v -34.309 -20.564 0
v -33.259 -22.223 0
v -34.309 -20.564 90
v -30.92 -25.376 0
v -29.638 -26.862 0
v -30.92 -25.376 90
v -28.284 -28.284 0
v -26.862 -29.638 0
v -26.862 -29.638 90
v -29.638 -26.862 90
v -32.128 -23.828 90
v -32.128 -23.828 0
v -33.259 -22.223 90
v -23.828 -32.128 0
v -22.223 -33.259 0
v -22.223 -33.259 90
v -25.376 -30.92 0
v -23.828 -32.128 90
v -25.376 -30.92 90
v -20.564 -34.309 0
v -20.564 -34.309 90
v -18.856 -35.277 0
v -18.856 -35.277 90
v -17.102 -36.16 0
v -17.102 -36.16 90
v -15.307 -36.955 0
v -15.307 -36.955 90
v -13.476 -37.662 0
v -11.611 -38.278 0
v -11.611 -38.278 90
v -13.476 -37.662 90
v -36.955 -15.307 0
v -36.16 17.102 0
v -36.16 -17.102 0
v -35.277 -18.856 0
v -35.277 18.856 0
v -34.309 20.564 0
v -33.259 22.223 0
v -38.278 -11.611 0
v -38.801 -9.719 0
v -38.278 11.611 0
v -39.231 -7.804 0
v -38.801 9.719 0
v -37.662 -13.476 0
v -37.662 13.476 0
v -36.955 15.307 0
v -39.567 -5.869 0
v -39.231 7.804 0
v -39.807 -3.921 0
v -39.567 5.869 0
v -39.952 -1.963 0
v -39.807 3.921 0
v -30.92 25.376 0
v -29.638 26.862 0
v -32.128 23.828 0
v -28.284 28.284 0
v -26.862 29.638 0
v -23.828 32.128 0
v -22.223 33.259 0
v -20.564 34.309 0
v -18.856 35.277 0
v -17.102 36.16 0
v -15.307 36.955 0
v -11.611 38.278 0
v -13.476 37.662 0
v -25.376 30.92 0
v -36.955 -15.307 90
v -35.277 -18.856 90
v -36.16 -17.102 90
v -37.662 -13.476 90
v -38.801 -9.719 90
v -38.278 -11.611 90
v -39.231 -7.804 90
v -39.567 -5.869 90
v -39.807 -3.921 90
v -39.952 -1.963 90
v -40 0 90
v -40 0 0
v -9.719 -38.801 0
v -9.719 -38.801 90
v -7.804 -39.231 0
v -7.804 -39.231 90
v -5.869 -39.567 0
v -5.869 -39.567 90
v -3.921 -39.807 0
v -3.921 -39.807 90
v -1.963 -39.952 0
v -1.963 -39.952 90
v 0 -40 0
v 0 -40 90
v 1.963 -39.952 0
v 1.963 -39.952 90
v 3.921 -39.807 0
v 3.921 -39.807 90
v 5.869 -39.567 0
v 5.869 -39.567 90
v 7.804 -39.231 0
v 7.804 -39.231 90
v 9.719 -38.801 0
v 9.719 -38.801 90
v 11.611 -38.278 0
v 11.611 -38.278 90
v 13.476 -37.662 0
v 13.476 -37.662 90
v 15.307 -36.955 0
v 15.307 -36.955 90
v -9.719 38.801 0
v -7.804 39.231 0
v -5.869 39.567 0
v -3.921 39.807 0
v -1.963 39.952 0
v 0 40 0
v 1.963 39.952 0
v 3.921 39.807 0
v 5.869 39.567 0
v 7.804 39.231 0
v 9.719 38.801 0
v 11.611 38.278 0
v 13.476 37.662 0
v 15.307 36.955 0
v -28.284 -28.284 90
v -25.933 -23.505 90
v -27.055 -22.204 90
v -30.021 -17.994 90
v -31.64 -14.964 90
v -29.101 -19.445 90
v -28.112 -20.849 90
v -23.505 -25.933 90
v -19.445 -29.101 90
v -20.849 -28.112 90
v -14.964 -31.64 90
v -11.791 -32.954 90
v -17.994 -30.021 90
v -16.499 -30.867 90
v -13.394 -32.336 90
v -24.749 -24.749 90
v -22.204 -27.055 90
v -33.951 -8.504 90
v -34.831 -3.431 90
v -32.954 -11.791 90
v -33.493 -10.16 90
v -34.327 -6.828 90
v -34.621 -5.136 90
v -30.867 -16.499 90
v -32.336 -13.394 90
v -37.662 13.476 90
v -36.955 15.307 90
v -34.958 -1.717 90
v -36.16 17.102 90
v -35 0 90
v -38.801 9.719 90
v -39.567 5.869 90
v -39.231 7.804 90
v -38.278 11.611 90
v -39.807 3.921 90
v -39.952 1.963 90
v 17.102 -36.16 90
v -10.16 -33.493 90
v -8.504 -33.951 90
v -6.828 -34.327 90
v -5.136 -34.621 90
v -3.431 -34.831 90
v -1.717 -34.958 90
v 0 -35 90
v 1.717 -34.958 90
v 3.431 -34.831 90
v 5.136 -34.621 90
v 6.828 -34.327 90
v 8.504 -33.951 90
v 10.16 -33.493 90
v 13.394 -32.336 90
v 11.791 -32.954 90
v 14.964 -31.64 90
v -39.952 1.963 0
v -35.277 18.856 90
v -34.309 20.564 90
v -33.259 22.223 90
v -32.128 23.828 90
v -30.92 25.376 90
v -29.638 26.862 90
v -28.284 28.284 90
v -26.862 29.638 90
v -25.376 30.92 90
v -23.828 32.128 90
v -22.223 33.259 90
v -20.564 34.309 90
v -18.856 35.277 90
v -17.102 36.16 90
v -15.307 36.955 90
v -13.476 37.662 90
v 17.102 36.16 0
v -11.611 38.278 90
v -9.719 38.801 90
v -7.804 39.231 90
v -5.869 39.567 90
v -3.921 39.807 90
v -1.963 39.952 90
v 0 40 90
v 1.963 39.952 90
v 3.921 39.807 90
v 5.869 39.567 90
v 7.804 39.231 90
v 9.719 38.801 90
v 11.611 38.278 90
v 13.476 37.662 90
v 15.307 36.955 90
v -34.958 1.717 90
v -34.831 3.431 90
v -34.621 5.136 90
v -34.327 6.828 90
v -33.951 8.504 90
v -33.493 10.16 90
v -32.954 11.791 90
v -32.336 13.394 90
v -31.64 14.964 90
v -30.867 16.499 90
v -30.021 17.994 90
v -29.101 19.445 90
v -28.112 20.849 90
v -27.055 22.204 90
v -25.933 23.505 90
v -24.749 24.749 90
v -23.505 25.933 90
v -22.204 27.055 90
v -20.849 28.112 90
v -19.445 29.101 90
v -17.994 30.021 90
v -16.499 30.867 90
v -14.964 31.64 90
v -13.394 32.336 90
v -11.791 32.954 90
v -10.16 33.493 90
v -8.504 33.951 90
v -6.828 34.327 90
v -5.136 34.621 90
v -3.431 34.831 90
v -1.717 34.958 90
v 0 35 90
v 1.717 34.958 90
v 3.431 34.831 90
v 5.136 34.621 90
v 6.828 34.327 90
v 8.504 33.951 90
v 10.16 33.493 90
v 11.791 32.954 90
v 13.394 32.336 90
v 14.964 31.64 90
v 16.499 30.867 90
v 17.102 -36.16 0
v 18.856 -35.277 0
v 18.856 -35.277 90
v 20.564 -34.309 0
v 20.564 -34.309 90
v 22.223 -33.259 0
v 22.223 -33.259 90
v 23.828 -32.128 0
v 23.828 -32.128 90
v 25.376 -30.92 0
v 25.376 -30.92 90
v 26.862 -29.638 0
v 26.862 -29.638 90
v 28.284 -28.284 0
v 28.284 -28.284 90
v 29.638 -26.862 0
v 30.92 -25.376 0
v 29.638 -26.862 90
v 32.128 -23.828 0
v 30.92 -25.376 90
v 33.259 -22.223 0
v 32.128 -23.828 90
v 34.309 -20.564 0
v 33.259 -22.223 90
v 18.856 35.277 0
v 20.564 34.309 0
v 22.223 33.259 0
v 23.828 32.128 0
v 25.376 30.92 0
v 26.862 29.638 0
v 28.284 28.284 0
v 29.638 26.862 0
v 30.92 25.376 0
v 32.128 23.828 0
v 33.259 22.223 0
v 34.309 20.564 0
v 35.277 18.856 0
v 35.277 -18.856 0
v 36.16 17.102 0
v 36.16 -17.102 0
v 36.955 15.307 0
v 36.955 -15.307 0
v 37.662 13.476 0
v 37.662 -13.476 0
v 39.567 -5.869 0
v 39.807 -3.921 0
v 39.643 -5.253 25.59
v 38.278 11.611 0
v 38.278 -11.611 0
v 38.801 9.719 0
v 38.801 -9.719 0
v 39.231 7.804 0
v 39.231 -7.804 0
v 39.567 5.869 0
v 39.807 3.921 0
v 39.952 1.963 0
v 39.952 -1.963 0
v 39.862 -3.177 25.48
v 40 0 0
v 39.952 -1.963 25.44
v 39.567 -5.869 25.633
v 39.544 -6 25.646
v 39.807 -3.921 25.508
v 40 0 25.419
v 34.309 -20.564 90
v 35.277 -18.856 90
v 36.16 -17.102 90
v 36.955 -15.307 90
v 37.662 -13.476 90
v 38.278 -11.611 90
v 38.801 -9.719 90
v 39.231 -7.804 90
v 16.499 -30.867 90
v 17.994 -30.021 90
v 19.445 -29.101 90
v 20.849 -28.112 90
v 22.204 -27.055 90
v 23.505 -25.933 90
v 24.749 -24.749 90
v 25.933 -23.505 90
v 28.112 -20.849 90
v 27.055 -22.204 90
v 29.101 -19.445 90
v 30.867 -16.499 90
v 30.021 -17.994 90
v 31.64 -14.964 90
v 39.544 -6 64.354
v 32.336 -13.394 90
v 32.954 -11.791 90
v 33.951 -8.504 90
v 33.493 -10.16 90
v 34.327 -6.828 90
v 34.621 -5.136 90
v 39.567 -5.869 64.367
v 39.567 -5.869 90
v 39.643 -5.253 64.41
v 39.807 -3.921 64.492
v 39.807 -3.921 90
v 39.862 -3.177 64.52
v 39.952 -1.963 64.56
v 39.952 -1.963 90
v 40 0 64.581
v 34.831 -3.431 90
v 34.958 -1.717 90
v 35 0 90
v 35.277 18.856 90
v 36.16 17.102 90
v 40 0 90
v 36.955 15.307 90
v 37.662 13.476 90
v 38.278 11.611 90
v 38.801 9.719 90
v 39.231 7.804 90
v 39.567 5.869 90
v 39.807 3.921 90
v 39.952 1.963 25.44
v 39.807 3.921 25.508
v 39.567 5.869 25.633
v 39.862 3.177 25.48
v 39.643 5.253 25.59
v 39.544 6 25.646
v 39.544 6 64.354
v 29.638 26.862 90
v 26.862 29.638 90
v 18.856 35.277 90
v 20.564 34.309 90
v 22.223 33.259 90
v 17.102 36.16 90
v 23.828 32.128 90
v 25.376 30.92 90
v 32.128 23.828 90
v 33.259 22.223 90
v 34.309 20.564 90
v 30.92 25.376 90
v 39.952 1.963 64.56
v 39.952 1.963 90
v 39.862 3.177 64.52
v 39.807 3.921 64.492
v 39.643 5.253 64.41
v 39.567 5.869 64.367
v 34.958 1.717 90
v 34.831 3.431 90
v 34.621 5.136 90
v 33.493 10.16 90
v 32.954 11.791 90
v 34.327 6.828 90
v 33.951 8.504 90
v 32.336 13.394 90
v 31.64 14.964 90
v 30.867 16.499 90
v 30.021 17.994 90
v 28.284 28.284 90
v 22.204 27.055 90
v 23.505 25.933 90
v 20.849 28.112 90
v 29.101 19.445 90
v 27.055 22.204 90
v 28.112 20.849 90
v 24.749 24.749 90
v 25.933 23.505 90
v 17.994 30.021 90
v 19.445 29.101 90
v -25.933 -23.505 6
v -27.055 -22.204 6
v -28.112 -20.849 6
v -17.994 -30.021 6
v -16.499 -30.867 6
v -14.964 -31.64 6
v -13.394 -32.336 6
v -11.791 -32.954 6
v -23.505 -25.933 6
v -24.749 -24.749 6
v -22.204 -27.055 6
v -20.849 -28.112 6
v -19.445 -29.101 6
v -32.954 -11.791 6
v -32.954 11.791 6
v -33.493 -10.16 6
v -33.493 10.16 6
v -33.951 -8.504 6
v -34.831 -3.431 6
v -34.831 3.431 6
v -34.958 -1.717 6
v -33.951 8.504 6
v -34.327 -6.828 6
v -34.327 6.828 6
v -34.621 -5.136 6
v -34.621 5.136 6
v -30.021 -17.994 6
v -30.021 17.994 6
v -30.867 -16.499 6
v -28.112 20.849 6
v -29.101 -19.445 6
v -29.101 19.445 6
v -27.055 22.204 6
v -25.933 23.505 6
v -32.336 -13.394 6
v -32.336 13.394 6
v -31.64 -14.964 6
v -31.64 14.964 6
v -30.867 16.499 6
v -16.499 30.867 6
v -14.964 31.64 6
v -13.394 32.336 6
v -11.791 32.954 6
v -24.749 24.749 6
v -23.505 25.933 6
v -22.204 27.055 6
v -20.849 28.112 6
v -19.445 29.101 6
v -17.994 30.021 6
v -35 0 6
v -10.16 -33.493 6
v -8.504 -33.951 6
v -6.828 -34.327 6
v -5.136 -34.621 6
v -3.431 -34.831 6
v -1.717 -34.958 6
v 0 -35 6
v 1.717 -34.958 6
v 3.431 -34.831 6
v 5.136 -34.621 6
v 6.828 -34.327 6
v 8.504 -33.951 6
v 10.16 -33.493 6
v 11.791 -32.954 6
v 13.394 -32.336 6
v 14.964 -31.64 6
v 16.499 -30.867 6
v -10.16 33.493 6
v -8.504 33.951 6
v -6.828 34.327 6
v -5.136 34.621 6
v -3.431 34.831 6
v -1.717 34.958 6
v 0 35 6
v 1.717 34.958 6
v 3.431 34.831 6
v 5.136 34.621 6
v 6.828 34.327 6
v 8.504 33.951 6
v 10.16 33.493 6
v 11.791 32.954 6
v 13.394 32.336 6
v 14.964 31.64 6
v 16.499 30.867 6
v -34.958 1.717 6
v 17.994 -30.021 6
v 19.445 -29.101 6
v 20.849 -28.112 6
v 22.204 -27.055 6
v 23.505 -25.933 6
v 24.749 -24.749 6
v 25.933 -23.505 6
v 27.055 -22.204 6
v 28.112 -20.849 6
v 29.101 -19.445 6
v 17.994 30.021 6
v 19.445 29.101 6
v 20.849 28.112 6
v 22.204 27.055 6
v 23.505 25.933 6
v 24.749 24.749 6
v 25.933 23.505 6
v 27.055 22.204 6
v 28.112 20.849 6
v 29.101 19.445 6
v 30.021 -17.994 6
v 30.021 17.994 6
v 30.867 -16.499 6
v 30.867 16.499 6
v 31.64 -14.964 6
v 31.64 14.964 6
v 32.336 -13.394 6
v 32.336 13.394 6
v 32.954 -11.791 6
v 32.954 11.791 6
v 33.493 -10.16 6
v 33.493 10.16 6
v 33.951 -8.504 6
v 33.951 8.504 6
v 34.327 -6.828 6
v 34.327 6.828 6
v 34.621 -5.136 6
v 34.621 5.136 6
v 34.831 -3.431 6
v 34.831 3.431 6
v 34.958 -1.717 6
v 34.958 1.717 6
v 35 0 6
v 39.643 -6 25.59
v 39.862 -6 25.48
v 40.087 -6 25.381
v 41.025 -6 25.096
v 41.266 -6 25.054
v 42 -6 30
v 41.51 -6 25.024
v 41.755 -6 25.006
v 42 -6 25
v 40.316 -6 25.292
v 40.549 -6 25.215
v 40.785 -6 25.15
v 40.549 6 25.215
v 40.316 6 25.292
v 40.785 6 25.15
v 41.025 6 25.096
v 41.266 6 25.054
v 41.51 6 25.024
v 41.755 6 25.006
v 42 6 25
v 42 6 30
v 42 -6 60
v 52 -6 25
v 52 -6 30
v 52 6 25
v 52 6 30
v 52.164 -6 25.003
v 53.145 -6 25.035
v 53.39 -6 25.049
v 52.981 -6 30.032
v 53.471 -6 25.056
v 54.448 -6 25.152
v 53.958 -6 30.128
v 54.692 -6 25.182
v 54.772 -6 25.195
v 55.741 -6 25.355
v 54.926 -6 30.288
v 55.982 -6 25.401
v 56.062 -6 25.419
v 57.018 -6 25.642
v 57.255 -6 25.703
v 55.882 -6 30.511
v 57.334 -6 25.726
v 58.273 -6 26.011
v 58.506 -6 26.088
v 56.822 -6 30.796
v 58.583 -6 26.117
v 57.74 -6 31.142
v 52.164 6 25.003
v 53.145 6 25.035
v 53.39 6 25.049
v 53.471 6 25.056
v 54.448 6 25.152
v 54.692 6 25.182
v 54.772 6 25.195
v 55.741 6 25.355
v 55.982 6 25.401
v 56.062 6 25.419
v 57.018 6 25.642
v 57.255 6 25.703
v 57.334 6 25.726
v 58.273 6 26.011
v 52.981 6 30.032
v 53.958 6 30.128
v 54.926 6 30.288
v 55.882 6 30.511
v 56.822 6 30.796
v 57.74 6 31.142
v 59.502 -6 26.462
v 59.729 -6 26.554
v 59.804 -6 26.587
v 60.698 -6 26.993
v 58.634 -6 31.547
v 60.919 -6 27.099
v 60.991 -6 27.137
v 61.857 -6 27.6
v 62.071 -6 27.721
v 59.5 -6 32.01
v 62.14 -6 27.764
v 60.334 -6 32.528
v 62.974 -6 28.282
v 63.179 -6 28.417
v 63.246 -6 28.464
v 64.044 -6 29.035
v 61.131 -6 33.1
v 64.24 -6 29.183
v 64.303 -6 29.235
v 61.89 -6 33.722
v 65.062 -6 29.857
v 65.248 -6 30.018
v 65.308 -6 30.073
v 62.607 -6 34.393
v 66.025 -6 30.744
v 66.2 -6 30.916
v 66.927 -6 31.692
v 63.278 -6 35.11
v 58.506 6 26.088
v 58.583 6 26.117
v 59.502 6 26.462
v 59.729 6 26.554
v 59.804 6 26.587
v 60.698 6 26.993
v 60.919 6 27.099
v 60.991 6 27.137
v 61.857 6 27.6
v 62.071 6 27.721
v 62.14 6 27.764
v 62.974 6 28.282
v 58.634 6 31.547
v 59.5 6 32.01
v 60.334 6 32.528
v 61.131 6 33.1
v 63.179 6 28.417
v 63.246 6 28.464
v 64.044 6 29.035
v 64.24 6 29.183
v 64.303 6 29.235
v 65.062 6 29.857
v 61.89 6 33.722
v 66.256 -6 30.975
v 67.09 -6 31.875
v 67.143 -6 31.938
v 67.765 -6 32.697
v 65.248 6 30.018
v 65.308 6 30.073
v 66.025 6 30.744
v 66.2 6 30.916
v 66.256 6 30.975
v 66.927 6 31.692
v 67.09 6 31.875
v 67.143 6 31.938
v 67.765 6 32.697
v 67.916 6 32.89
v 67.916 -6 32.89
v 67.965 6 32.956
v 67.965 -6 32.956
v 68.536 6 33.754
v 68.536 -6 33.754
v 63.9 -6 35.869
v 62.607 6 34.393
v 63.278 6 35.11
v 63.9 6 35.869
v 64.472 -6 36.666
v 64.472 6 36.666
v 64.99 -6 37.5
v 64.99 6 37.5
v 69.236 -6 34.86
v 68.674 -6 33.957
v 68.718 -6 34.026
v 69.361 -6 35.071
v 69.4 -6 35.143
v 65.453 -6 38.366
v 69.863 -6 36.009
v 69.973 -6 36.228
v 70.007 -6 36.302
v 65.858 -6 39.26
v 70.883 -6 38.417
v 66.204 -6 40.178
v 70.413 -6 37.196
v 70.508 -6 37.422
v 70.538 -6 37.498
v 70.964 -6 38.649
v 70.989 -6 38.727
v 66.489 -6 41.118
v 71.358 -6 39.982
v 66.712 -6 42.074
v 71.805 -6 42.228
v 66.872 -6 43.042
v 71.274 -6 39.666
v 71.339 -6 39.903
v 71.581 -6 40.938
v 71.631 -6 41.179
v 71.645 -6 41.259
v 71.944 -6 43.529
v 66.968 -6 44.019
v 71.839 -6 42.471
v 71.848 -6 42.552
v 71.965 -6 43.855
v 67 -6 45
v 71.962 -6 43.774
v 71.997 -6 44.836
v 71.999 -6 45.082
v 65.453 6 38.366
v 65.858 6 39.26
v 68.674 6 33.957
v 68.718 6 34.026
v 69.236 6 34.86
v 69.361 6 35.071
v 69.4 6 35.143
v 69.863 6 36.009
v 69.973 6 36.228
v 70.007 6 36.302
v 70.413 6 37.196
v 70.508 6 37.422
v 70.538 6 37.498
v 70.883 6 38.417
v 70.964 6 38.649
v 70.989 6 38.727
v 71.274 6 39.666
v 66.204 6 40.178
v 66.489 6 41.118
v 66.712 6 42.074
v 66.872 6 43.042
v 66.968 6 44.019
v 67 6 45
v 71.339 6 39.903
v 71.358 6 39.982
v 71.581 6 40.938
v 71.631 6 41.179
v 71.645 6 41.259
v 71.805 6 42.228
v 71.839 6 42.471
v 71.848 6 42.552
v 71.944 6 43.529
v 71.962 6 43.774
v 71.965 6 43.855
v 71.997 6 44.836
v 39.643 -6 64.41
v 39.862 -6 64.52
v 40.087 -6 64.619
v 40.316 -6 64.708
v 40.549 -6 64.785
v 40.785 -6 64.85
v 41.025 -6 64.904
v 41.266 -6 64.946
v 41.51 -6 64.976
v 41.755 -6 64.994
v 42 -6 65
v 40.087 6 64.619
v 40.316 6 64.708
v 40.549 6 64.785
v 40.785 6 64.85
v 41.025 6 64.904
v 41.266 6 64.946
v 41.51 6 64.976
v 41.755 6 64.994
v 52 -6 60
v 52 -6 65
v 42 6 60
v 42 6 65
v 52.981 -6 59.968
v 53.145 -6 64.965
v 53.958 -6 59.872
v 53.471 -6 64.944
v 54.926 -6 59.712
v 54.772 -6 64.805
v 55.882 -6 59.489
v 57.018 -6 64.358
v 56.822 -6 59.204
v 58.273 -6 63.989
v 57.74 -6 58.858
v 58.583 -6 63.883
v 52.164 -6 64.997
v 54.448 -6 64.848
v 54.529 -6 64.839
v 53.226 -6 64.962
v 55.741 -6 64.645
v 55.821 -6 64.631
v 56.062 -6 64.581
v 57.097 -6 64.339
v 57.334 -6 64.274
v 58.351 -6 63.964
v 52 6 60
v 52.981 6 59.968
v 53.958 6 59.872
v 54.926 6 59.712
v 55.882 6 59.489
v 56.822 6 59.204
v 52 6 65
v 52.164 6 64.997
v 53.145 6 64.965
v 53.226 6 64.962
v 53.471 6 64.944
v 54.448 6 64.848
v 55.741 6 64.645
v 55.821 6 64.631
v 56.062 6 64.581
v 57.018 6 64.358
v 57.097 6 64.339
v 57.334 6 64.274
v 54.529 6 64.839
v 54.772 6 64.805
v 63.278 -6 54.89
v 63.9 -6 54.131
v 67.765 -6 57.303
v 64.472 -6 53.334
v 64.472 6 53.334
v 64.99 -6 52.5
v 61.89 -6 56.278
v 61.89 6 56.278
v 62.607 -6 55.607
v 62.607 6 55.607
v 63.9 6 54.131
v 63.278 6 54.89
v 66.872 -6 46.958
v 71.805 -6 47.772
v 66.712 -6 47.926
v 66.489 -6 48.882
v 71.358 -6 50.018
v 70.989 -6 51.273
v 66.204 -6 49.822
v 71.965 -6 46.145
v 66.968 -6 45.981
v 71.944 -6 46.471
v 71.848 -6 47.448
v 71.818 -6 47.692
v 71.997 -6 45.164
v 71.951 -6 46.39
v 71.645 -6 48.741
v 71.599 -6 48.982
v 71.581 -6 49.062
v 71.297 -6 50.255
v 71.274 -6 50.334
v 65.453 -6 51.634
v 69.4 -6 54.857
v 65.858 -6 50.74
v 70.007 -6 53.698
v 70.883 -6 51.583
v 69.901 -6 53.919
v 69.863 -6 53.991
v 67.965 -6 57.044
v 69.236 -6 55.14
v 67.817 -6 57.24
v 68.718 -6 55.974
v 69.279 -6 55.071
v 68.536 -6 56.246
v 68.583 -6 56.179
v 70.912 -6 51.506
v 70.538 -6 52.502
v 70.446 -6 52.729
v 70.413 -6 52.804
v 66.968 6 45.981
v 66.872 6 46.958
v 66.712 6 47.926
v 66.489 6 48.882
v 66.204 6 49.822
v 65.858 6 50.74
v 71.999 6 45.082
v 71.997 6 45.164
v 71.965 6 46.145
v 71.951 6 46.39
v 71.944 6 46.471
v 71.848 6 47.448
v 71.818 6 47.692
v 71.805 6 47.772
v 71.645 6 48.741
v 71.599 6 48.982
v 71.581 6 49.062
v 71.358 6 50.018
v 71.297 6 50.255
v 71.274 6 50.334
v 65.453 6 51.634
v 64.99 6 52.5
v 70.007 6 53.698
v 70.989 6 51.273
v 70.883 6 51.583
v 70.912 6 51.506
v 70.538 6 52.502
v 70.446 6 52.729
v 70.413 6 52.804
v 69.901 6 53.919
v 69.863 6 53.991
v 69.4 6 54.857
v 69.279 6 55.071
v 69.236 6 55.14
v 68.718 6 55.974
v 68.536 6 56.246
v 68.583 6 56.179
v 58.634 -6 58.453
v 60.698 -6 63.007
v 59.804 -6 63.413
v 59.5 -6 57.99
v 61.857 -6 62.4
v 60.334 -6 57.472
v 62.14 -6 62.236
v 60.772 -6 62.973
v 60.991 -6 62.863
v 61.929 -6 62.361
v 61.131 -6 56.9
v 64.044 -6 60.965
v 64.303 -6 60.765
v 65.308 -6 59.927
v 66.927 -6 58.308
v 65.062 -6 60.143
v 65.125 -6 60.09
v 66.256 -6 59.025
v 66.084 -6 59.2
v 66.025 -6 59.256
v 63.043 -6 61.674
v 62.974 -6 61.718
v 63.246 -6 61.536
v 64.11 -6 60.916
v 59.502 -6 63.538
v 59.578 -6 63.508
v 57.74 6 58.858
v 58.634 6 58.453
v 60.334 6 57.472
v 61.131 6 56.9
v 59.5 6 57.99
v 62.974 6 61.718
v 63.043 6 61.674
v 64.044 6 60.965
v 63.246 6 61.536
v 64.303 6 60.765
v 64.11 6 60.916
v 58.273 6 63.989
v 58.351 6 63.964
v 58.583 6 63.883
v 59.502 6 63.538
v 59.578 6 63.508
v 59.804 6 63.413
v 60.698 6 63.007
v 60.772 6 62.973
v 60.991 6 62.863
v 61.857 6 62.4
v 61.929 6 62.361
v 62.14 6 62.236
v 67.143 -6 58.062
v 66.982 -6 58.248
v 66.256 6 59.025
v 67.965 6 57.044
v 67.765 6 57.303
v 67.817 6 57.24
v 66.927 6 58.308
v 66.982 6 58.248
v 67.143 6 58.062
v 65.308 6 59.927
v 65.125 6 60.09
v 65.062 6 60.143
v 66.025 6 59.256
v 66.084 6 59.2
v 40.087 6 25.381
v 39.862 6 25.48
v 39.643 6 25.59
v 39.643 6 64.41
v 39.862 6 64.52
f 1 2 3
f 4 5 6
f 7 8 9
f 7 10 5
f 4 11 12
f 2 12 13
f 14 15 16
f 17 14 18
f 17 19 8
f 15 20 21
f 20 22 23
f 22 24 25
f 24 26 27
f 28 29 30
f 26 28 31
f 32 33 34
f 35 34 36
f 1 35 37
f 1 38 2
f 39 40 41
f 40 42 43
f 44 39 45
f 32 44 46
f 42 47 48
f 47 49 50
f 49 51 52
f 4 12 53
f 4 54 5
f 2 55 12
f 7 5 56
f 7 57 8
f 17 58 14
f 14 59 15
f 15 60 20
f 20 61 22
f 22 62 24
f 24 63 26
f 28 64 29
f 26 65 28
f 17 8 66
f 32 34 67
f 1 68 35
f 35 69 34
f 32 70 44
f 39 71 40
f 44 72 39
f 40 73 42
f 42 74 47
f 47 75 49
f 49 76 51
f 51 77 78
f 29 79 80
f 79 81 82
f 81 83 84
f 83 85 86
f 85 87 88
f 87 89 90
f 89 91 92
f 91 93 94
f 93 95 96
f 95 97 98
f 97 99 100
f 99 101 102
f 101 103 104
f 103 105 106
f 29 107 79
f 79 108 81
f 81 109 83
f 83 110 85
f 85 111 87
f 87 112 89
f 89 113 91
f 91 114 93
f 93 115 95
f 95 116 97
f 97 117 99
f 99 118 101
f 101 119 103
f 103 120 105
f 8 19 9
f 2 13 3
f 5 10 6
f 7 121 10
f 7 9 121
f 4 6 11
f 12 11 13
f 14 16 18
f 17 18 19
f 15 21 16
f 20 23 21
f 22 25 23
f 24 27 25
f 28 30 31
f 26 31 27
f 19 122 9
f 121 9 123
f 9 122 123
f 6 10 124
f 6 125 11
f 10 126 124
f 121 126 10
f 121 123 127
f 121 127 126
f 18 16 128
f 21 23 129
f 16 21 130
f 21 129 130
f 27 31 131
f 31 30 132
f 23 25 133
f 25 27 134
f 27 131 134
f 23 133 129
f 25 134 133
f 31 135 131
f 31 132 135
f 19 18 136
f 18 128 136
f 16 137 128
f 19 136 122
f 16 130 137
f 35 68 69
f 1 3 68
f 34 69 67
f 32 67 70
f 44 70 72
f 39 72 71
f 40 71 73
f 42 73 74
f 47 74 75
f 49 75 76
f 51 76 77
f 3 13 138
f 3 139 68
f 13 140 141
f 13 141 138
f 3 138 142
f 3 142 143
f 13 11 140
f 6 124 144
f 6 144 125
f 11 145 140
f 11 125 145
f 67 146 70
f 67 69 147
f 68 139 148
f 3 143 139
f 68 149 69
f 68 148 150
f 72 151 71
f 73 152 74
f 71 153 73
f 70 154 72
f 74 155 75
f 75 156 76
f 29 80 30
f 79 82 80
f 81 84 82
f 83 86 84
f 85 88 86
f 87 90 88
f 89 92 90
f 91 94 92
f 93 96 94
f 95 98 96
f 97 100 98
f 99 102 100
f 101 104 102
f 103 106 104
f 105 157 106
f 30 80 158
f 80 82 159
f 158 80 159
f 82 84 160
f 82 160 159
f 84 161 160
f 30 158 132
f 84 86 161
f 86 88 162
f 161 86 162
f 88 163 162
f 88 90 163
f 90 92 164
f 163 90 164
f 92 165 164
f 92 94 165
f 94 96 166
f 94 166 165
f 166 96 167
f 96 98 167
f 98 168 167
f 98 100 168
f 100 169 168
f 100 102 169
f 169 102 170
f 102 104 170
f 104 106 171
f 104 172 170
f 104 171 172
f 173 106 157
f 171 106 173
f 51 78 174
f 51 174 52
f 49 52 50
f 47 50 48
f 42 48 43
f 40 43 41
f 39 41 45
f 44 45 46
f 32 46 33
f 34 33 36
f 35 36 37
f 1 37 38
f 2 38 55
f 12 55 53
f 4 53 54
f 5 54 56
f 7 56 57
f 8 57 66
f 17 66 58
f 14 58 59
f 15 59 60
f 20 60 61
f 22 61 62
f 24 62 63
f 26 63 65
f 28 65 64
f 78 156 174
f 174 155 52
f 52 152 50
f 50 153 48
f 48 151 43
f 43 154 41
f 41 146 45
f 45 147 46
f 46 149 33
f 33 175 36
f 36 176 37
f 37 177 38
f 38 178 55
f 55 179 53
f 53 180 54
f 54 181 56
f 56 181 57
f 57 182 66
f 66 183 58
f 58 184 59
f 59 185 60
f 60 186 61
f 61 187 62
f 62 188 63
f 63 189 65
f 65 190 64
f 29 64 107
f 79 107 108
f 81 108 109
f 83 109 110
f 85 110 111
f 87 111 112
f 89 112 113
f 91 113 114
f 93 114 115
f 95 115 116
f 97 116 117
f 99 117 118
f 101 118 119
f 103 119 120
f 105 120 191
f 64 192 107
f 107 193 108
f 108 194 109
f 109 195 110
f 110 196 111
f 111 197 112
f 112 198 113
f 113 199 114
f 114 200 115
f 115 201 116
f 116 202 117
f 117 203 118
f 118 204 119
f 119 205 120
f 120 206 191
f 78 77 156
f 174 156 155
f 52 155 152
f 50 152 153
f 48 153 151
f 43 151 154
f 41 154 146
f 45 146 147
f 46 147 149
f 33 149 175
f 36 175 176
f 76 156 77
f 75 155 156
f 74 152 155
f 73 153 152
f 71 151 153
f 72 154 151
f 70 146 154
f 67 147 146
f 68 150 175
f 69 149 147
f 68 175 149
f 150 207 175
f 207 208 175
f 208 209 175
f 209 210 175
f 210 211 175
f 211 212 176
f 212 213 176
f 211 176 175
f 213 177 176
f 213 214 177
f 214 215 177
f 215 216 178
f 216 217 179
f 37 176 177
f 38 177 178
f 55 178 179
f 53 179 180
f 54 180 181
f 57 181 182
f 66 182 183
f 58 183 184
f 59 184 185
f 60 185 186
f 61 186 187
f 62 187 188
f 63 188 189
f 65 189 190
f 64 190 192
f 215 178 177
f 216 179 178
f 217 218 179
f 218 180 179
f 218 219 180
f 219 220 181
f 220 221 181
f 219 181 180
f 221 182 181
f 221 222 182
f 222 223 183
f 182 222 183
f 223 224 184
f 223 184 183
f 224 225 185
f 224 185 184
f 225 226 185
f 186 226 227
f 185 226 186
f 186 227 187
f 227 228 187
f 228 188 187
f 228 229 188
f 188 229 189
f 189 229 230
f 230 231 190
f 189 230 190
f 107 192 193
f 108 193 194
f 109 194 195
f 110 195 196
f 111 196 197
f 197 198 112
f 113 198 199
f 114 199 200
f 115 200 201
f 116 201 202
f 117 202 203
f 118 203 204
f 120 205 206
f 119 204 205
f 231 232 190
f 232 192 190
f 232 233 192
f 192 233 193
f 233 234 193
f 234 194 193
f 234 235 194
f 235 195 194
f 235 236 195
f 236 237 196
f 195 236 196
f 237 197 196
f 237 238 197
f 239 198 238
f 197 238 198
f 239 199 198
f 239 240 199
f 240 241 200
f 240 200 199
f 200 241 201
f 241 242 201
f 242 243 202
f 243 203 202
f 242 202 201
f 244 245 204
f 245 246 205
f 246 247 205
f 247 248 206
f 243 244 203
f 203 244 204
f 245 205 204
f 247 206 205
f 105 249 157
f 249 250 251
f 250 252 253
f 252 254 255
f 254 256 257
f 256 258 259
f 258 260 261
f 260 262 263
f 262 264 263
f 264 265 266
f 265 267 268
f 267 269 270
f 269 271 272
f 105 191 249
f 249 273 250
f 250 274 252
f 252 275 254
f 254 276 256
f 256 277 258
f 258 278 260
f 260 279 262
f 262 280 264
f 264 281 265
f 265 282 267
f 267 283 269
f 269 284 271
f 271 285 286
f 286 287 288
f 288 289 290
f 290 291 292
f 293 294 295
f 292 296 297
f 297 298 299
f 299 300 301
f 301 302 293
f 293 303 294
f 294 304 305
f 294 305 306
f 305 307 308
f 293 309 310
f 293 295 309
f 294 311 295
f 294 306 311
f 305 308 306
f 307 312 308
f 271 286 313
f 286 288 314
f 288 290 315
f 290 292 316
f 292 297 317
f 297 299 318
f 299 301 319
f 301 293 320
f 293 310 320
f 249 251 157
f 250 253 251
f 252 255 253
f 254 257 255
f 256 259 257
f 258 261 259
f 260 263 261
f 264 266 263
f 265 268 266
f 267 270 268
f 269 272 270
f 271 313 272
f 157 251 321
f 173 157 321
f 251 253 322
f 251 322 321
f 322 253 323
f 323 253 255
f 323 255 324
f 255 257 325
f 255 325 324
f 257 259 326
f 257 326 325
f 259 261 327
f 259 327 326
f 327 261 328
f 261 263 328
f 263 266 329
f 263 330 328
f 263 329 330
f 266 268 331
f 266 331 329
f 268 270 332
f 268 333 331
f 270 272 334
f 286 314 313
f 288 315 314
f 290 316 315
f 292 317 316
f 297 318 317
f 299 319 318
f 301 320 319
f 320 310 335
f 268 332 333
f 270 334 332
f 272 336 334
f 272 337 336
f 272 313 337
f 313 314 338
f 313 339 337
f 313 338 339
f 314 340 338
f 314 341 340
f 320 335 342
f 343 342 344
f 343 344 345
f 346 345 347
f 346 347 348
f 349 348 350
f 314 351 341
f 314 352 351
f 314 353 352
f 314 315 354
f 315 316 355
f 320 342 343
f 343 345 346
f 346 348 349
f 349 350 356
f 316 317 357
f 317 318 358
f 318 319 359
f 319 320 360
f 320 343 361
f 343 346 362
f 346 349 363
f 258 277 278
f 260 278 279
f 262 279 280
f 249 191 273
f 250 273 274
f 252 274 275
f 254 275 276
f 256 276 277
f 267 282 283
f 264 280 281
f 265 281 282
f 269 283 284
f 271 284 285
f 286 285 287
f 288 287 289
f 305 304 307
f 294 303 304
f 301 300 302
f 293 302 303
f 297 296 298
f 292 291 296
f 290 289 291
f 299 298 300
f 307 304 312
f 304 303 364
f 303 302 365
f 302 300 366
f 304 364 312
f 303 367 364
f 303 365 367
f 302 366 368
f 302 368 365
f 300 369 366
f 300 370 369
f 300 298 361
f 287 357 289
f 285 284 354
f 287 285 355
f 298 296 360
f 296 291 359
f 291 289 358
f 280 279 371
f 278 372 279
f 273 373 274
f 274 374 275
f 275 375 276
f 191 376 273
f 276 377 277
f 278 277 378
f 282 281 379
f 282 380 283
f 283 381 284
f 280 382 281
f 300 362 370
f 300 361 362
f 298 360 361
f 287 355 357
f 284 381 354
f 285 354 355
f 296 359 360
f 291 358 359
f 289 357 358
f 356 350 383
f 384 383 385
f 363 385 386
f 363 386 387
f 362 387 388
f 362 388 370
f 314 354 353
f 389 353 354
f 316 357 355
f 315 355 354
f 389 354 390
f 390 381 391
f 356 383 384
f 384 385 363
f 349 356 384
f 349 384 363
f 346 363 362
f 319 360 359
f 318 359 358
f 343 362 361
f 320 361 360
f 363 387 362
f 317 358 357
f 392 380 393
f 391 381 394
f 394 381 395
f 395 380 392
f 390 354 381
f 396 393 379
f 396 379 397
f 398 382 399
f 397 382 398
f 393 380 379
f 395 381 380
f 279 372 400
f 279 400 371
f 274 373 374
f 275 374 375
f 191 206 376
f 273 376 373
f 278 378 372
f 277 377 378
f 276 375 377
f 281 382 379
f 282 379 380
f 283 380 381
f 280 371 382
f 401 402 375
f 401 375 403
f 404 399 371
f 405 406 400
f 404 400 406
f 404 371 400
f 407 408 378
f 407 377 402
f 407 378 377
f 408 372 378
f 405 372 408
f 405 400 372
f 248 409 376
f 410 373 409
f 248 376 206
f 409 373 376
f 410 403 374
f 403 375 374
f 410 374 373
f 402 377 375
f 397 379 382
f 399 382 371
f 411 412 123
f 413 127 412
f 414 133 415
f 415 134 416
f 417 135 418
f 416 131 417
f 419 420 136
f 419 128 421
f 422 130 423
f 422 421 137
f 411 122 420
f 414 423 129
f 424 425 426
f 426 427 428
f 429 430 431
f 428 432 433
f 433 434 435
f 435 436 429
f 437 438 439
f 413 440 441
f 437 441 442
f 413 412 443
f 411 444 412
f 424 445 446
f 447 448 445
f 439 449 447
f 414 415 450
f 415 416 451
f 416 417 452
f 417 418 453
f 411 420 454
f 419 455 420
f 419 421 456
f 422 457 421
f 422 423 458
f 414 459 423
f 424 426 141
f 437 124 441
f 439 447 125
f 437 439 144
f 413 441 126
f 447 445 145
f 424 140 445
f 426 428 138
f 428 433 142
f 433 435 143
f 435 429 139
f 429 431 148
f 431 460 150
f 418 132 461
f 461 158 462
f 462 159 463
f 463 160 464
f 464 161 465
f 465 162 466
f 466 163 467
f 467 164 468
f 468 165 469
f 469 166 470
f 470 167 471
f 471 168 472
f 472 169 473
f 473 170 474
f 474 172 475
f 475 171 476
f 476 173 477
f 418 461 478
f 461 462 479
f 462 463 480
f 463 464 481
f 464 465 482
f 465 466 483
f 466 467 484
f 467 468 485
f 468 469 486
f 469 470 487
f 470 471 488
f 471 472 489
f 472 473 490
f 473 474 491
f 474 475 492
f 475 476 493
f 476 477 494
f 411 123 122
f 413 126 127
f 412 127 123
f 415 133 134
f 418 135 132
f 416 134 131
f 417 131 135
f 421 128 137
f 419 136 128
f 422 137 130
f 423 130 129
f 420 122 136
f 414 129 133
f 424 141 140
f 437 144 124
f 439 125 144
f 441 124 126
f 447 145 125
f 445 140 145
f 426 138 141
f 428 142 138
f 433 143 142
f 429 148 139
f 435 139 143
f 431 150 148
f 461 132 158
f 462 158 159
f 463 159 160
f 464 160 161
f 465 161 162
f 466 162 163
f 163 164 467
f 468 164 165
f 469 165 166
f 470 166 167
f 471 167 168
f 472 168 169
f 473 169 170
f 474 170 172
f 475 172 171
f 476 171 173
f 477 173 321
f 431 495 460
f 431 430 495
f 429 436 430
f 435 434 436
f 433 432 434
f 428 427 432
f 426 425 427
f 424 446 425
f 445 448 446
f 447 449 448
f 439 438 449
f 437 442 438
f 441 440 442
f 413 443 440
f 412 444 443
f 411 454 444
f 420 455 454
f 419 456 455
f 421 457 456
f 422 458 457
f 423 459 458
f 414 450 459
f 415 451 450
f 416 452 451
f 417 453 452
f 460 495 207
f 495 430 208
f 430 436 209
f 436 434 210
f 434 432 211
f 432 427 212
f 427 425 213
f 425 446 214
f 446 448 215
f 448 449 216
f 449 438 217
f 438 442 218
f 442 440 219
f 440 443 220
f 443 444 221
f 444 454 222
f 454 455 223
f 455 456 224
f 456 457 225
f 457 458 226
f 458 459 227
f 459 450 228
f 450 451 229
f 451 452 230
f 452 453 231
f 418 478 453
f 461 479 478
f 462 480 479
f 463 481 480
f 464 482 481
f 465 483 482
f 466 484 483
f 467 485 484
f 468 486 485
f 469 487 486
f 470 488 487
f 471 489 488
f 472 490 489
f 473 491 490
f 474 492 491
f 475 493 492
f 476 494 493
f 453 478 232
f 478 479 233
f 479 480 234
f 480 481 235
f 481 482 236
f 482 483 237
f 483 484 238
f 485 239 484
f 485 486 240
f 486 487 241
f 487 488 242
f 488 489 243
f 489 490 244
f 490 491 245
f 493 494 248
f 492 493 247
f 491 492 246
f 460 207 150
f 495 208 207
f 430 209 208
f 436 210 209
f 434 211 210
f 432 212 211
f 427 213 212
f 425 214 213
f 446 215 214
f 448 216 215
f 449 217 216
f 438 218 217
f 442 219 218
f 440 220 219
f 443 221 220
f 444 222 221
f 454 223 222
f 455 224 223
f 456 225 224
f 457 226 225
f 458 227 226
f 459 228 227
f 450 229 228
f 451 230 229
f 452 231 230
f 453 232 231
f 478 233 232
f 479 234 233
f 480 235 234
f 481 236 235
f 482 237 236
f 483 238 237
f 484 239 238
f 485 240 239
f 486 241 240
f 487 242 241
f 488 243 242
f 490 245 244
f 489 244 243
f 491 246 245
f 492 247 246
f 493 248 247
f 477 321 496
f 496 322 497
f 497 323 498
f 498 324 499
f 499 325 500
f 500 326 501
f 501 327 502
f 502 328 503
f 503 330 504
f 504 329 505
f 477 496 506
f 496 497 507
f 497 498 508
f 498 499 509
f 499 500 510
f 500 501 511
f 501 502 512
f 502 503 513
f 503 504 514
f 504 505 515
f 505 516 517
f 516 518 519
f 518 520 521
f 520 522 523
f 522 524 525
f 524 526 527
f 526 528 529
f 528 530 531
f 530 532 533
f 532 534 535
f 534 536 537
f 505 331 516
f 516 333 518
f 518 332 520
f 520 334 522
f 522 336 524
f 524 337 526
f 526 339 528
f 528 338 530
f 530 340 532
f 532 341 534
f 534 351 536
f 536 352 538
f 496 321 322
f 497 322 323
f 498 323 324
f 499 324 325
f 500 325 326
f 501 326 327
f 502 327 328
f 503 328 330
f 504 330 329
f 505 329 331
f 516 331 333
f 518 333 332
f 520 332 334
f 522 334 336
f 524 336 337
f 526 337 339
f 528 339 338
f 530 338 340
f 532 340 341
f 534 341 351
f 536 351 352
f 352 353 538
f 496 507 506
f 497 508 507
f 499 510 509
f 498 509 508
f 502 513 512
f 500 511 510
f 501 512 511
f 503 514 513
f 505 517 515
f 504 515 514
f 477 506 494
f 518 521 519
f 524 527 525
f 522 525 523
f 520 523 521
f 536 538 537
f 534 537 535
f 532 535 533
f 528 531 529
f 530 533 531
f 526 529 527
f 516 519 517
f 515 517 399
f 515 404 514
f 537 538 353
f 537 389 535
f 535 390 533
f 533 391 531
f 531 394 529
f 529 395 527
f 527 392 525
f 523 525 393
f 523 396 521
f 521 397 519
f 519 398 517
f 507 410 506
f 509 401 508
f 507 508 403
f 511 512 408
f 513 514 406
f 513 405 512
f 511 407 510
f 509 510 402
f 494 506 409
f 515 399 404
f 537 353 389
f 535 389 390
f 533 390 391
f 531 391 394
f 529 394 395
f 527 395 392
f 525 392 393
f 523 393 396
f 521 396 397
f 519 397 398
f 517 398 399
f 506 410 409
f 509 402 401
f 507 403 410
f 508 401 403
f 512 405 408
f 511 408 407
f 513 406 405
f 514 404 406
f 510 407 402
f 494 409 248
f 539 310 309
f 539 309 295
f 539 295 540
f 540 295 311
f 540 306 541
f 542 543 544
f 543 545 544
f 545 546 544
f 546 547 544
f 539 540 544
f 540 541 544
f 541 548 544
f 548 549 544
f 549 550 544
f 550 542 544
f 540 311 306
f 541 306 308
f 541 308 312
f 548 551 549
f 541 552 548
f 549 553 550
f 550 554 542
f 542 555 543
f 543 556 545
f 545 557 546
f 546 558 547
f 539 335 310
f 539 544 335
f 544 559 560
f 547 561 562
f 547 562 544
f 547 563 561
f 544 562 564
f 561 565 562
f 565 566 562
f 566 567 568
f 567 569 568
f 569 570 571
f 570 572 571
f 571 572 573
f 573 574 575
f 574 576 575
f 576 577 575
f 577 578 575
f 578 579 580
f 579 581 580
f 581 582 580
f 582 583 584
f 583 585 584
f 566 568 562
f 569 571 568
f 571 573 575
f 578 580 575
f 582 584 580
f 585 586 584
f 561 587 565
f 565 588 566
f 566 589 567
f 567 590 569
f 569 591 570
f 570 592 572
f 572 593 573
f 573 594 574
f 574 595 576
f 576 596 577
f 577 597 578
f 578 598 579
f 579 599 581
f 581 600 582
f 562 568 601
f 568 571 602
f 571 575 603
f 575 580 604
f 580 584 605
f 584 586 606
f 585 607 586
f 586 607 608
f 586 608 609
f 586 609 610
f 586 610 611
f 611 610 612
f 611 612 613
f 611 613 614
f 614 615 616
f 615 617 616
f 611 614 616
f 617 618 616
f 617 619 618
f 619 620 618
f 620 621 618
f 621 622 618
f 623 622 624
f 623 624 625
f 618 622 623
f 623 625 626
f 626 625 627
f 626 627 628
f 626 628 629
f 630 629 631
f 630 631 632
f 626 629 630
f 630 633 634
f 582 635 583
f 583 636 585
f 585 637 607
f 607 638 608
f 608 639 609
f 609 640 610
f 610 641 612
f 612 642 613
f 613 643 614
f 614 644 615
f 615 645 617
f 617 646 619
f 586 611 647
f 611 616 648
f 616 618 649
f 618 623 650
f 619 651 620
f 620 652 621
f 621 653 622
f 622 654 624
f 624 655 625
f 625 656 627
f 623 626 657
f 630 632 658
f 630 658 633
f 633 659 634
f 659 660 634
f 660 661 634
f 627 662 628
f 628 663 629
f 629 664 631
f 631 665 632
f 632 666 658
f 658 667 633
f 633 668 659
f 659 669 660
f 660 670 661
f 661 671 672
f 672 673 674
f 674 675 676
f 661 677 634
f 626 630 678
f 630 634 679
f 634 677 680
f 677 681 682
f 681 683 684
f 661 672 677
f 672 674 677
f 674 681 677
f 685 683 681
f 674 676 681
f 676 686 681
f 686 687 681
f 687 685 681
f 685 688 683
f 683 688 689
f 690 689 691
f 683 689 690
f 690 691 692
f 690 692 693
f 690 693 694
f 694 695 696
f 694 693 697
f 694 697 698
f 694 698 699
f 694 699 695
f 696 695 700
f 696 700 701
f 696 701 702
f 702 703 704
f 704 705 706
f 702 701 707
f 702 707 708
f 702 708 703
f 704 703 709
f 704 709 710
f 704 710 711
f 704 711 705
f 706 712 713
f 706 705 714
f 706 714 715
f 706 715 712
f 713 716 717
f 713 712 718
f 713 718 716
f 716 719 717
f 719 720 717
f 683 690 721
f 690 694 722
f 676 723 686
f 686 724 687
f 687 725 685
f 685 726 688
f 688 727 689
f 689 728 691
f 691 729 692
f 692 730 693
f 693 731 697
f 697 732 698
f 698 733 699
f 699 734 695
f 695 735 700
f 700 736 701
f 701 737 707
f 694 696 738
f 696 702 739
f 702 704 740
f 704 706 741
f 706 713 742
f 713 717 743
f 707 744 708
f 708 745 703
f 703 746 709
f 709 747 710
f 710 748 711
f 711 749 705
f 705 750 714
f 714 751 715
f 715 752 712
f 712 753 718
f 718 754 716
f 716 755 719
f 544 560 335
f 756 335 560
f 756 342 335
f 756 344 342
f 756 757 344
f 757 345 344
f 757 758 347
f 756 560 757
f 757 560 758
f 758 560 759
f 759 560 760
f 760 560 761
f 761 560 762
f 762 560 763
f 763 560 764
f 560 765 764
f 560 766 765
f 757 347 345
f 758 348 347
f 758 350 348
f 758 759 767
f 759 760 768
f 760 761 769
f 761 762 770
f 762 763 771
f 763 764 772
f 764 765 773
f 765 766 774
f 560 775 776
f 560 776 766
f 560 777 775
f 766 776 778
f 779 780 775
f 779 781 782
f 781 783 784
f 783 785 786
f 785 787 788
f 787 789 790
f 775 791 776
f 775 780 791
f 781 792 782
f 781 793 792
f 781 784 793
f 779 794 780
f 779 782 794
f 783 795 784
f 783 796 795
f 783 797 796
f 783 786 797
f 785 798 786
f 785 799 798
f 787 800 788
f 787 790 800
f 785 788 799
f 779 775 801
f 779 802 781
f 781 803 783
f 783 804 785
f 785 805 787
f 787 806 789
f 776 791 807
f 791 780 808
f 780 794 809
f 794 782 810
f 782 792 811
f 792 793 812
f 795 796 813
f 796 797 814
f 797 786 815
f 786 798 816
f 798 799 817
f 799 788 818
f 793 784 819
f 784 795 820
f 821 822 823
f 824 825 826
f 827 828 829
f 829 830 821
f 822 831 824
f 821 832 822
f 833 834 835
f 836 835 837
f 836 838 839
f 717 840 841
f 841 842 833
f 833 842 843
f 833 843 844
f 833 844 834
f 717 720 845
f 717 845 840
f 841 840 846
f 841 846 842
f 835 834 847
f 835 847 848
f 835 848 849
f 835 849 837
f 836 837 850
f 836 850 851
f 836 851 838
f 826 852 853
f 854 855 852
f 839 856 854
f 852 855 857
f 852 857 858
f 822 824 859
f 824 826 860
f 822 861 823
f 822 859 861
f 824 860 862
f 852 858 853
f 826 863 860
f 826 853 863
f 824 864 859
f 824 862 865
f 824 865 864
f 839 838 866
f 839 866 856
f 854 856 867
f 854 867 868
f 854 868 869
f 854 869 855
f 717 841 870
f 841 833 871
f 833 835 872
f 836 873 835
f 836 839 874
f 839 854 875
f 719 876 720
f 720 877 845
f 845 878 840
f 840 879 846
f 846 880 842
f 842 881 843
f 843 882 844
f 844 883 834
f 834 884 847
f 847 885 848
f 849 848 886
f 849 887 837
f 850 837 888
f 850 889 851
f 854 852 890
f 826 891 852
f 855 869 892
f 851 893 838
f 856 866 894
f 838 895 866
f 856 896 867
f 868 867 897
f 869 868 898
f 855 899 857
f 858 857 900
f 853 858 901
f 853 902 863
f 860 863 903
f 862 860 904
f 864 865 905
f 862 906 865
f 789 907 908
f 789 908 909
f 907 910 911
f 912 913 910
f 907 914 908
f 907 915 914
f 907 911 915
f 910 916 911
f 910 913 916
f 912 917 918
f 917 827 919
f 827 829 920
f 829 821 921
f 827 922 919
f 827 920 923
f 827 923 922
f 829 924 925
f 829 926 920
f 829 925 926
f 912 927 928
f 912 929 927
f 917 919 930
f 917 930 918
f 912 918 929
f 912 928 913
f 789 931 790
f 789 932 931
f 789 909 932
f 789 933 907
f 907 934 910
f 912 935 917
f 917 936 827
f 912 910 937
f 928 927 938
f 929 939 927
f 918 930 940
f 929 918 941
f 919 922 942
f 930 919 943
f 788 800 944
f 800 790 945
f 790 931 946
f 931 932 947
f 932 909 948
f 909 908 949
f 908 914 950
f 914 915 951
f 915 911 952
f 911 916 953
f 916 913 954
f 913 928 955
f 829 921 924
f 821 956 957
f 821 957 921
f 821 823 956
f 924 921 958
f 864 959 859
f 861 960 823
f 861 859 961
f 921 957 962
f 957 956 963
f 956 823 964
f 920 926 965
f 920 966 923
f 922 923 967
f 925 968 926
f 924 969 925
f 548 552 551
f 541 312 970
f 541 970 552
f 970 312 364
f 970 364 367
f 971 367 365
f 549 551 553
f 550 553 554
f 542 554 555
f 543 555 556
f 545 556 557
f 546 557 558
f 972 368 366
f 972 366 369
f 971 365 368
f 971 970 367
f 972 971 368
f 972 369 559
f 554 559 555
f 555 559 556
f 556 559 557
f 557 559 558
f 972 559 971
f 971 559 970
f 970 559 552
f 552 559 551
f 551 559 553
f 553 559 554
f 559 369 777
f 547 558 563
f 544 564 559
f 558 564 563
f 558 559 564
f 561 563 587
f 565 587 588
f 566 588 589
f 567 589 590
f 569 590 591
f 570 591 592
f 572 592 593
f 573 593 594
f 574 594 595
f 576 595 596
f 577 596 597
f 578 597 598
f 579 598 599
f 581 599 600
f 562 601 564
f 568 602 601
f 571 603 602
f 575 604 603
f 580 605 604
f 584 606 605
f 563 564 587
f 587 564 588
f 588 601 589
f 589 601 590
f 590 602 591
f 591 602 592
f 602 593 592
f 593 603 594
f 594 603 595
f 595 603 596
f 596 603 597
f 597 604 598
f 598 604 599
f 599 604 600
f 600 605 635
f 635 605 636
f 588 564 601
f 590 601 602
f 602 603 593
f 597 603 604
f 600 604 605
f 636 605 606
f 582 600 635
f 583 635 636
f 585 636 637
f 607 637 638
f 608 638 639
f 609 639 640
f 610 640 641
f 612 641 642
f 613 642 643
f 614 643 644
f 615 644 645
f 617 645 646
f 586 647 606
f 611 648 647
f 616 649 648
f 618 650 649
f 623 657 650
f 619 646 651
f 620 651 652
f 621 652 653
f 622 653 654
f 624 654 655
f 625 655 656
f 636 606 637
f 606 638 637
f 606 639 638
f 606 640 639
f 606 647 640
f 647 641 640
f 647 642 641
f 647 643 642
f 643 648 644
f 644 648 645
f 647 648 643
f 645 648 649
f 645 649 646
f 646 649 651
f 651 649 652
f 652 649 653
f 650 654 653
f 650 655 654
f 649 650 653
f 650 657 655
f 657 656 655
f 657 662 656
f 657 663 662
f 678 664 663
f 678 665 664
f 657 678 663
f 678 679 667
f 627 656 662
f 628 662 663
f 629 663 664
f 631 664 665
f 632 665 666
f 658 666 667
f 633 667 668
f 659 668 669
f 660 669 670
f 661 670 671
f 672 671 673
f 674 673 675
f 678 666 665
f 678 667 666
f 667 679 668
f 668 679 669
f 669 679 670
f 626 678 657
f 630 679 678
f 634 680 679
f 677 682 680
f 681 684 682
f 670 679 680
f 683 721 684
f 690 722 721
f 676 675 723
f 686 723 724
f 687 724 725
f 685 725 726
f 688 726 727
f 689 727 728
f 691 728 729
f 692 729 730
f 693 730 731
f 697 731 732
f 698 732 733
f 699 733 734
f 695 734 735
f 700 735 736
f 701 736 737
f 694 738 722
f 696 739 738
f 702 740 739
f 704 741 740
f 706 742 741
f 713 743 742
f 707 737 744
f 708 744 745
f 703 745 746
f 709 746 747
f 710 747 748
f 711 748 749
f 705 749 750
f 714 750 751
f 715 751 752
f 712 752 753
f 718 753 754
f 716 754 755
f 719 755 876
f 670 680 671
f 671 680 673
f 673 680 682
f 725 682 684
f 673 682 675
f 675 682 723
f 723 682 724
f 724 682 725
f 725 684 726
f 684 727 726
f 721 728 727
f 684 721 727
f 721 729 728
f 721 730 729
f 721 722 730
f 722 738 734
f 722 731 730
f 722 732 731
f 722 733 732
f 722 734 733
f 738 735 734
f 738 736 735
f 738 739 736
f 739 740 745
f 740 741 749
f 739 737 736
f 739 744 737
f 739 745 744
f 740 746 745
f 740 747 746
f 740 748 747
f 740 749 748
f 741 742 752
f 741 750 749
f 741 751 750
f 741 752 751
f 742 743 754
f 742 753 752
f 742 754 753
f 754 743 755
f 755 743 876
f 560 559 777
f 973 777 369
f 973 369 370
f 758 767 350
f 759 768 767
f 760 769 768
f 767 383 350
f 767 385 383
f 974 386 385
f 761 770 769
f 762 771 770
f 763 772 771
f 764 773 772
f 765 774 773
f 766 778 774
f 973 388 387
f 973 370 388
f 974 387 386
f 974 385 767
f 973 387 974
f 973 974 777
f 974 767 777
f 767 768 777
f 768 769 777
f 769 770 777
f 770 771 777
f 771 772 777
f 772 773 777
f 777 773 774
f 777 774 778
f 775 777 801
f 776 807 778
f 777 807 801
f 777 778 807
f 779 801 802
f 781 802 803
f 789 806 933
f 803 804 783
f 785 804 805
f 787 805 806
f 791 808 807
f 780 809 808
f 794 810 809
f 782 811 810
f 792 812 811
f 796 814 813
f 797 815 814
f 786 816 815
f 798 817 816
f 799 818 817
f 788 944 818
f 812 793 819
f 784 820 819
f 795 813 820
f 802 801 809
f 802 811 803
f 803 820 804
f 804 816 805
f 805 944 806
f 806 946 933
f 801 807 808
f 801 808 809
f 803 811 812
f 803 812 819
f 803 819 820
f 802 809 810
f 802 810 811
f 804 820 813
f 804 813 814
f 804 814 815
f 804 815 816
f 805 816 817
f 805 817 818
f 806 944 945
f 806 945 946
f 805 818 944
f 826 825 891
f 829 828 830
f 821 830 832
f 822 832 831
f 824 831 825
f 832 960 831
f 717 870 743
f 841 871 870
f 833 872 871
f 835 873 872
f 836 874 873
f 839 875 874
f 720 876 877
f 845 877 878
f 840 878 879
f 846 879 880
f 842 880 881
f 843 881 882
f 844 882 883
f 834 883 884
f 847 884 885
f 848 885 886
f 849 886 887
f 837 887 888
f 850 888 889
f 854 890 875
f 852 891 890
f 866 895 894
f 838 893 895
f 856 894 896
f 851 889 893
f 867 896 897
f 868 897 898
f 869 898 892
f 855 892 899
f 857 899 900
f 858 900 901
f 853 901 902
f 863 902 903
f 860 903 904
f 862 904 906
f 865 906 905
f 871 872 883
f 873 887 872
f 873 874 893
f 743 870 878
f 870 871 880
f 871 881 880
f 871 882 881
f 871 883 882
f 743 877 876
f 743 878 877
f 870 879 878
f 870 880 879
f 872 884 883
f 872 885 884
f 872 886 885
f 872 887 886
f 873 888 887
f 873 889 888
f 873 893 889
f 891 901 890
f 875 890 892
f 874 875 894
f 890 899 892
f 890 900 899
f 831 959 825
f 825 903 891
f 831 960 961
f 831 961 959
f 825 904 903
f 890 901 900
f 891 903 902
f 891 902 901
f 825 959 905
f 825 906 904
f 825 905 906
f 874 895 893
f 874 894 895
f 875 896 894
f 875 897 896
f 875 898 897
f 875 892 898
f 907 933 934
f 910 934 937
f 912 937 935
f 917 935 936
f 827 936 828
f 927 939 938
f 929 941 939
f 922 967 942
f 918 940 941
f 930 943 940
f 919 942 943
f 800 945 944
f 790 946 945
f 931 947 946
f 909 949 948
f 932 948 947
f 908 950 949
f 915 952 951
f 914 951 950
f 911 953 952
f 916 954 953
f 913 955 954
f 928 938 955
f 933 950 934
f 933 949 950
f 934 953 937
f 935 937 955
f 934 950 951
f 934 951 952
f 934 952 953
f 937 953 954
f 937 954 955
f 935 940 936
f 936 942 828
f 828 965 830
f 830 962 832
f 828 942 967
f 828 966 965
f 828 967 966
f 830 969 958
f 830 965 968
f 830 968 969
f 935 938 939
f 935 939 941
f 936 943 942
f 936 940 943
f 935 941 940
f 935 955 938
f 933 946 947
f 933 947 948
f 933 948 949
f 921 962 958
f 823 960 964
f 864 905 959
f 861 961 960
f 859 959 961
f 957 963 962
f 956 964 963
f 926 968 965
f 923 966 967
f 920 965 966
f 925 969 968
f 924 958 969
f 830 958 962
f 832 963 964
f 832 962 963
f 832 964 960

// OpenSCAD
$fn = 128;

outer_diameter = 80;
inner_diameter = 70;
mug_height = 90;
bottom_thickness = 6;

handle_opening_width = 25;
handle_opening_height = 30;
handle_wall = 5;
handle_depth = 12;
handle_inner_x = 42;
handle_center_z = mug_height / 2;
handle_arc_steps = 48;

// D-shaped profile: straight back with a semicircular outer end.
function d_profile_points(x, zc, w, h, steps) =
    let(
        r = h / 2,
        straight = w - r
    )
    concat(
        [[x, zc + r], [x + straight, zc + r]],
        [
            for (i = [1:steps])
                let(a = 90 - 180 * i / steps)
                    [x + straight + r * cos(a), zc + r * sin(a)]
        ],
        [[x, zc - r]]
    );

module mug_body() {
    difference() {
        cylinder(h = mug_height, d = outer_diameter);

        translate([0, 0, bottom_thickness])
            cylinder(h = mug_height, d = inner_diameter);
    }
}

module handle_profile() {
    difference() {
        offset(r = handle_wall)
            polygon(points = d_profile_points(
                handle_inner_x,
                handle_center_z,
                handle_opening_width,
                handle_opening_height,
                handle_arc_steps
            ));

        polygon(points = d_profile_points(
            handle_inner_x,
            handle_center_z,
            handle_opening_width,
            handle_opening_height,
            handle_arc_steps
        ));
    }
}

module mug_handle() {
    rotate([90, 0, 0])
        linear_extrude(height = handle_depth, center = true, convexity = 10)
            handle_profile();
}

union() {
    mug_body();
    mug_handle();
}
